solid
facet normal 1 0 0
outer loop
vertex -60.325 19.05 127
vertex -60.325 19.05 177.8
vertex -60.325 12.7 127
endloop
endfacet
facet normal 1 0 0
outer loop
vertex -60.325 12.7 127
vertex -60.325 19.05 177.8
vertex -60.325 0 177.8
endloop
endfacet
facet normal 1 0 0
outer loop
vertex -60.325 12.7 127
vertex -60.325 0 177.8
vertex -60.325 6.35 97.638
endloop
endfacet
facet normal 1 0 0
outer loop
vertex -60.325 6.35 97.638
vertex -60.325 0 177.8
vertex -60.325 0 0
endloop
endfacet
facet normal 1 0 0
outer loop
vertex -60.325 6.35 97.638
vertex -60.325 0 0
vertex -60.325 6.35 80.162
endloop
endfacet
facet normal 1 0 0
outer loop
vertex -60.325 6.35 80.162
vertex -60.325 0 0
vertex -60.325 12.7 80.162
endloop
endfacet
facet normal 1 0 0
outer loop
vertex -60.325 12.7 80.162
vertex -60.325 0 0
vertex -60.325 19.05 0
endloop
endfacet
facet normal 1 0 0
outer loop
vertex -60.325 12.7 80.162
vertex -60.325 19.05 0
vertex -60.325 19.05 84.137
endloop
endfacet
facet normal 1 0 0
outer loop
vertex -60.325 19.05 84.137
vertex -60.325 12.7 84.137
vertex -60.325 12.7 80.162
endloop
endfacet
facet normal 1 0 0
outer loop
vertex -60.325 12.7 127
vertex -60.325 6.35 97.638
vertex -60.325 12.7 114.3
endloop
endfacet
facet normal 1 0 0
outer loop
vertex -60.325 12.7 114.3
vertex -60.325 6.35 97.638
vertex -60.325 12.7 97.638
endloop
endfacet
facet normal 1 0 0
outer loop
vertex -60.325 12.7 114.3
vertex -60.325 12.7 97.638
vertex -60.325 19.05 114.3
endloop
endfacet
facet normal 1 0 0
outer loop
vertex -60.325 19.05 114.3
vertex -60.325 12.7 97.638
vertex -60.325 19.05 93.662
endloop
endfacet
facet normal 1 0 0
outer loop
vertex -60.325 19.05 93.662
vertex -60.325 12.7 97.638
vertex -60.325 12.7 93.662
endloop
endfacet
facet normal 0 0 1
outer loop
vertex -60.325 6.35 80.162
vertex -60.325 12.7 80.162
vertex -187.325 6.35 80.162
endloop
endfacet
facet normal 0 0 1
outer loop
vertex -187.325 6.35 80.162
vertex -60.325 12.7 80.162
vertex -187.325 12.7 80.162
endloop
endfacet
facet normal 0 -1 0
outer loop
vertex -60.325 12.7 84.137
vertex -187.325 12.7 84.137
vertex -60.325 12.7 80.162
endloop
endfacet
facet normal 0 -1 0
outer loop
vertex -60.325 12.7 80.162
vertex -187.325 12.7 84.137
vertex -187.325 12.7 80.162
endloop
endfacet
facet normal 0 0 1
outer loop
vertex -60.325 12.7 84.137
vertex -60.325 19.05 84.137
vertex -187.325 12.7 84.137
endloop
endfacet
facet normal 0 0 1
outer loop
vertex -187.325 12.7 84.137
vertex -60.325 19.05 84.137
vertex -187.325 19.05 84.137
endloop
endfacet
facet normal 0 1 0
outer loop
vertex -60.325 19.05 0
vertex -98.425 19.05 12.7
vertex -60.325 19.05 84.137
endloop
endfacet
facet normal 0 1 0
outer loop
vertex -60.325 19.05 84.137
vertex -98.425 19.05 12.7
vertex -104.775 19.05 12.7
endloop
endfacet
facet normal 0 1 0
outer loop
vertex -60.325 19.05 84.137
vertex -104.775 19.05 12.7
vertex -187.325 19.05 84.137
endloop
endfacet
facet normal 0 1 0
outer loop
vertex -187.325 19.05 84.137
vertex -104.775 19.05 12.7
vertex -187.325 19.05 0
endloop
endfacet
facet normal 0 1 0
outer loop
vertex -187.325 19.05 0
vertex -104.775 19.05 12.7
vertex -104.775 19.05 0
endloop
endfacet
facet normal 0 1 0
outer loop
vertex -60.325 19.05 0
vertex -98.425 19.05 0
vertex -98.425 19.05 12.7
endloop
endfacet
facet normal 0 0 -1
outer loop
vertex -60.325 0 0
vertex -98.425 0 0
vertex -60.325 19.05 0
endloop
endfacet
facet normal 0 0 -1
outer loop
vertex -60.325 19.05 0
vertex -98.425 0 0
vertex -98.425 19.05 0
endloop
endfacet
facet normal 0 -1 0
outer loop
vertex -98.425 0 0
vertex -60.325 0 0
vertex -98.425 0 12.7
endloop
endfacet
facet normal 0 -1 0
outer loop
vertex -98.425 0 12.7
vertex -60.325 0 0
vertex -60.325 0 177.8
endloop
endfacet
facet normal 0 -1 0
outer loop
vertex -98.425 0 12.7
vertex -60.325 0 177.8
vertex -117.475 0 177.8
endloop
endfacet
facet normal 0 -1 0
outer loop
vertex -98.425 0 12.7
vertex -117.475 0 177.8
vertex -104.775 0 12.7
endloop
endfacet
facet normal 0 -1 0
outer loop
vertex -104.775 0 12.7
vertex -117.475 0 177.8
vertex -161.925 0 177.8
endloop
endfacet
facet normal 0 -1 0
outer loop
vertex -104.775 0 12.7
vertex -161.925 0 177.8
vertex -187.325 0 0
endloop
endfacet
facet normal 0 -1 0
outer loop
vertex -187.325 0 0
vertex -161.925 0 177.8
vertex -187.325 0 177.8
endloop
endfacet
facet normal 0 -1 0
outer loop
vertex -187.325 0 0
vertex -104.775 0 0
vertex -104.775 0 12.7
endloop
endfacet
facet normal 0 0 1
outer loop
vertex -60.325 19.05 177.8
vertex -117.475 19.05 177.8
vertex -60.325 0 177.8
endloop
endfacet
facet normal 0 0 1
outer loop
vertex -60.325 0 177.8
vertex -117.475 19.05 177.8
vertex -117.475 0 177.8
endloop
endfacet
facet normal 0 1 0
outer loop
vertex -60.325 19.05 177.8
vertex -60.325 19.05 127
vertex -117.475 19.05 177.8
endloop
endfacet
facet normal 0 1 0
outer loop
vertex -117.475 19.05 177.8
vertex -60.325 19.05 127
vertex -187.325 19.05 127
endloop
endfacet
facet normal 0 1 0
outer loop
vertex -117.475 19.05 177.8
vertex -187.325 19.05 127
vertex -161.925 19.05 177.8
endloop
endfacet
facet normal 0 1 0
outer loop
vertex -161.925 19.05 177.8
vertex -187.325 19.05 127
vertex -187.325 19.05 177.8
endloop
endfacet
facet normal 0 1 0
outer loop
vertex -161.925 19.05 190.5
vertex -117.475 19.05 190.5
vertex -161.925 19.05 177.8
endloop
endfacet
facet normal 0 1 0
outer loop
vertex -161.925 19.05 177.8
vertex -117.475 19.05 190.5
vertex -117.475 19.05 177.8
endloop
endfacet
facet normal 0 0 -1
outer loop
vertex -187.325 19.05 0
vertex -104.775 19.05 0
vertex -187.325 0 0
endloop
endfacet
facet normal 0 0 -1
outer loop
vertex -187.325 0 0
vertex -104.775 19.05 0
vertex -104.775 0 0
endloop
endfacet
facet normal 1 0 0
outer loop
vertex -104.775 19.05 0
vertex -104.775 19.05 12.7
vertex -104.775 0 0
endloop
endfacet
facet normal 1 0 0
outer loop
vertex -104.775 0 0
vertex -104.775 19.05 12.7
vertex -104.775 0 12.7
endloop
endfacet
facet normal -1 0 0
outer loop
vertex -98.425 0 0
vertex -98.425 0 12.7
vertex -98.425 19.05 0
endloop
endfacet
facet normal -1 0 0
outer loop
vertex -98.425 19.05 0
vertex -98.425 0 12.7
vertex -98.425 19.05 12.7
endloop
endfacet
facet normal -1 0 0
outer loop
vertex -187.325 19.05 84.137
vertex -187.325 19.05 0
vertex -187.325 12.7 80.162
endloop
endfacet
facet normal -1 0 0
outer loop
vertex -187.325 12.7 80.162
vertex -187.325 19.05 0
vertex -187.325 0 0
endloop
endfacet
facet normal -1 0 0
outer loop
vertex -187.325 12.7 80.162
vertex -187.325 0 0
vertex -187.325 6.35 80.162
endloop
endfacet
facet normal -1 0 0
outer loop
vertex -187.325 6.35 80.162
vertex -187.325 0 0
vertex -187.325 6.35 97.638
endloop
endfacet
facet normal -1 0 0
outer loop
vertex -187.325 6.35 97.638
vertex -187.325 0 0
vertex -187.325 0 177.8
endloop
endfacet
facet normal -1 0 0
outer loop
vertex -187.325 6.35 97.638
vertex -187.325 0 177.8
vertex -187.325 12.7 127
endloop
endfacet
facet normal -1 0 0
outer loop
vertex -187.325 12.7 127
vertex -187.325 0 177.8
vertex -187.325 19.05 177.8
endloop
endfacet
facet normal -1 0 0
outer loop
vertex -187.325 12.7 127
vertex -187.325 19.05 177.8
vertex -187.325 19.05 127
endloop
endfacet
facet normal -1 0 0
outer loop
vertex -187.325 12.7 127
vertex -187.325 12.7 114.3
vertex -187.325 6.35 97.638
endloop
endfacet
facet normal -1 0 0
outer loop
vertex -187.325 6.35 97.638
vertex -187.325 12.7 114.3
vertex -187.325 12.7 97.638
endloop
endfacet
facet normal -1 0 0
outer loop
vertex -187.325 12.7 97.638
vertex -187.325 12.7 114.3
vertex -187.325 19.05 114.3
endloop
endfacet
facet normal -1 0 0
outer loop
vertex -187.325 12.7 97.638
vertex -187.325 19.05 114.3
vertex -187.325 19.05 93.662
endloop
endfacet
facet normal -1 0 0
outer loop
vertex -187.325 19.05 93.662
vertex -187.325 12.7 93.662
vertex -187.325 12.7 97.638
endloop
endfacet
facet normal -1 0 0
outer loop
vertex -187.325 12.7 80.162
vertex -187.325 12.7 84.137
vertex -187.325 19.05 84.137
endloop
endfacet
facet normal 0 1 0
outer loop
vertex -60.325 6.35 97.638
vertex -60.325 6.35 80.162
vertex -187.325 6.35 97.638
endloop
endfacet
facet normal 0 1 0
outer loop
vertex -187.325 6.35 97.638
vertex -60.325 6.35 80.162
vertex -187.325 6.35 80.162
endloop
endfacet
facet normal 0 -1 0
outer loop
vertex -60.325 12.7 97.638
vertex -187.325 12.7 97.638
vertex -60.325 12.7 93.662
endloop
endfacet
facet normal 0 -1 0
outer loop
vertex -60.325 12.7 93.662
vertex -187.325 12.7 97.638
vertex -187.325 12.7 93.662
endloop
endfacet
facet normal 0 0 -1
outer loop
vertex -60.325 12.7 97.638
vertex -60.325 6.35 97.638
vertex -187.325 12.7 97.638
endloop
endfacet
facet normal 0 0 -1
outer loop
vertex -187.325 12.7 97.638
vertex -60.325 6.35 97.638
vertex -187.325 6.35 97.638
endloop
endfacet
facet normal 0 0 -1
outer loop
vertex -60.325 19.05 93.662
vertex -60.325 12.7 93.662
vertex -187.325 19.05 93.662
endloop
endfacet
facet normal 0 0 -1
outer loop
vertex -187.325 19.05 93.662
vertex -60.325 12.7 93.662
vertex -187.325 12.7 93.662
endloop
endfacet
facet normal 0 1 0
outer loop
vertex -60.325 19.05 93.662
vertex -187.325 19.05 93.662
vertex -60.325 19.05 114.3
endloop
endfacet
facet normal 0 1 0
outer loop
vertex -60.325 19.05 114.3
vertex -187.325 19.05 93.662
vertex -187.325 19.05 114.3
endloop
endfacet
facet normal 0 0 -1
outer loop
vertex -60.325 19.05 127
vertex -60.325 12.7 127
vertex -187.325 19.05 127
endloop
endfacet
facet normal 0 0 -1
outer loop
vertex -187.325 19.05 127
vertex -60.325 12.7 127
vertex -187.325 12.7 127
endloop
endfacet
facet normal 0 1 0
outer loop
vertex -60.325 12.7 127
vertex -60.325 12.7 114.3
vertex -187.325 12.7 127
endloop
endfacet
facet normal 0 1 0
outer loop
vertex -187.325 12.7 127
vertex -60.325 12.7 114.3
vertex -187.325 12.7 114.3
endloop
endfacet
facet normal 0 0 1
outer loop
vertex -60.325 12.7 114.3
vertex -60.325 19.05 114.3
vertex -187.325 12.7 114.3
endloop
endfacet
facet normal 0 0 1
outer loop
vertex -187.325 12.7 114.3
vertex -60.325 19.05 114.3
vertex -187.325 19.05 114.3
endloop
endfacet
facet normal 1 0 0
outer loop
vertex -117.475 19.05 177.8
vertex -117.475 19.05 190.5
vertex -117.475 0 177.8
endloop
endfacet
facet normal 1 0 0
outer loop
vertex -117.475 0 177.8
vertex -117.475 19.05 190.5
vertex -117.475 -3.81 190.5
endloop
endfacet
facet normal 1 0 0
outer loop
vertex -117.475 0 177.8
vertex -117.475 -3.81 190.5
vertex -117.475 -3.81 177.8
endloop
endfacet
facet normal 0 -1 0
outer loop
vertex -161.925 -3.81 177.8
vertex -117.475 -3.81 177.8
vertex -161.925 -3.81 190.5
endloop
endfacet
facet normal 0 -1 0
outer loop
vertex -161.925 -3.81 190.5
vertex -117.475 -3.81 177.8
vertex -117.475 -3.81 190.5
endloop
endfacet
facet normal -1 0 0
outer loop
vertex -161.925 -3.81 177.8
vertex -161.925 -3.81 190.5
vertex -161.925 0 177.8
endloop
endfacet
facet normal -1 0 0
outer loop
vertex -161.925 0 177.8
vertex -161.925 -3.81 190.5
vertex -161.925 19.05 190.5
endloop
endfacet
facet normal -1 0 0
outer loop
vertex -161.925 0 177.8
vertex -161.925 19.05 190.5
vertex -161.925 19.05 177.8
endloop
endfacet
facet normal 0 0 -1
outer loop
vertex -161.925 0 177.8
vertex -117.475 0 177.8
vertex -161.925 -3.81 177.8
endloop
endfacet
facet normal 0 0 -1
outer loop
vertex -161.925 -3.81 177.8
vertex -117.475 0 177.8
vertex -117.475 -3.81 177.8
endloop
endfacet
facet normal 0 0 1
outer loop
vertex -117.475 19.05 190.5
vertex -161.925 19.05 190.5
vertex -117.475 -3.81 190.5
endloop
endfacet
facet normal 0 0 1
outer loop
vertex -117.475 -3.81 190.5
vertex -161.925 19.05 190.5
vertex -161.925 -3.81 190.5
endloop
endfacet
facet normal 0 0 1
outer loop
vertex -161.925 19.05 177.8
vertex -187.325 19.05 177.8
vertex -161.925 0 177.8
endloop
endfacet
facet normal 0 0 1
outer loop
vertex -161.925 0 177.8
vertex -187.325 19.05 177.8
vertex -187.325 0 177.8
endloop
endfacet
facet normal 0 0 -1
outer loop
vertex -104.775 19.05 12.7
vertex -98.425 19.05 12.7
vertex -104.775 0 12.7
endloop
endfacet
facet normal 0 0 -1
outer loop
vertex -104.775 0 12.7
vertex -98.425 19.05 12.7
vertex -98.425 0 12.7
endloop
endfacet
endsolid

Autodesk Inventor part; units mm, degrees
ref_plane "YZ Plane" through (0, 0, 0) normal (1, 0, 0) x (0, 1, 0)
ref_plane "XZ Plane" through (0, 0, 0) normal (0, 1, 0) x (-1, 0, 0)
sketch "Sketch3" plane through (0, 0, 0) normal (0, 0, 1) x (1, 0, 0)
  line L0 (0, -9.525) -> (9.525, -9.525)
  line L1 (9.525, -9.525) -> (9.525, 0)
  line L2 (0, 0) -> (0, -9.525) construction
  line L3 (0, 0) -> (9.525, 0) construction
  line L4 (0, -9.525) -> (-9.525, -9.525)
  line L5 (-9.525, -9.525) -> (-9.525, 0)
  line L6 (9.525, 0) -> (73.025, 0)
  line L7 (-187.325, 0) -> (-187.325, 19.05)
  line L8 (-187.325, 0) -> (-9.525, 0)
  line L9 (73.025, 0) -> (73.025, 19.05)
  line L10 (73.025, 19.05) -> (-187.325, 19.05)
  dimension "d0" = 9.525
  dimension "d1" = 9.525
  dimension "d6" = 63.5
  dimension "d8" = 19.05
  dimension "d9" = 177.8
extrude "Extrusion1" add sketch "Sketch3" along normal mid plane 355.6
sketch "Sketch4" plane through (0, 0, 177.8) normal (0, 0, 1) x (1, 0, 0)
  line L0 (-187.325, 19.05) -> (73.025, 19.05) construction
  line L1 (0, 19.05) -> (0, -9.525) construction
  line L2 (9.525, -9.525) -> (-9.525, -9.525) construction
  line L3 (0, -9.525) -> (-22.225, -9.525)
  line L4 (-22.225, -9.525) -> (-22.225, 19.05)
  line L5 (-22.225, 19.05) -> (0, 19.05)
  line L6 (187.325, 19.05) -> (-73.025, 19.05) construction
  line L7 (0, -9.525) -> (22.225, -9.525)
  line L8 (22.225, -9.525) -> (22.225, 19.05)
  line L9 (0, 19.05) -> (22.225, 19.05)
  point P0 (0, 0)
  dimension "d12" = 22.225
extrude "Extrusion2" add sketch "Sketch4" along normal blind 12.7
mirror "Mirror1" about plane through (0, 0, 0) normal (0, 0, 1) of "Extrusion2"
sketch "Sketch6" plane through (-187.325, 0, -177.8) normal (0, -1, 0) x (1, 0, 0)
  line L0 (82.55, 165.1) -> (88.9, 165.1)
  line L1 (88.9, 165.1) -> (88.9, 190.5)
  line L2 (88.9, 190.5) -> (82.55, 190.5)
  line L3 (82.55, 190.5) -> (82.55, 165.1)
  line L4 (82.55, 165.1) -> (88.9, 190.5) construction
  line L5 (88.9, 165.1) -> (82.55, 190.5) construction
  line L6 (177.8, 0) -> (177.8, 355.6) projected
  point P0 (187.325, 177.8)
  point P1 (85.725, 177.8)
  dimension "d16" = 12.7
  dimension "d18" = 6.35
  dimension "d19" = 88.9
extrude "Extrusion3" cut sketch "Sketch6" against normal through all
sketch "Sketch7" plane through (0, 0, 177.8) normal (0, 0, 1) x (1, 0, 0)
  line L0 (-187.325, 19.05) -> (-22.225, 19.05) projected
  line L1 (-161.925, 19.05) -> (-117.475, 19.05)
  line L2 (-117.475, 19.05) -> (-117.475, -3.81)
  line L3 (-117.475, -3.81) -> (-161.925, -3.81)
  line L4 (-161.925, -3.81) -> (-161.925, 19.05)
  line L5 (-187.325, 19.05) -> (-187.325, 0) projected
  point P0 (0, 0)
  dimension "d22" = 44.45
  dimension "d23" = 22.86
  dimension "d24" = 25.4
extrude "Extrusion4" add sketch "Sketch7" along normal blind 12.7
mirror "Mirror2" about plane through (0, 0, 0) normal (0, 0, 1) of "Extrusion4"
sketch "Sketch9" plane through (73.025, 0, 177.8) normal (1, 0, 0) x (0, 0, -1)
  line L0 (355.6, 19.05) -> (0, 19.05) projected
  line L1 (50.8, 19.05) -> (63.5, 19.05)
  line L2 (63.5, 19.05) -> (63.5, 12.7)
  line L3 (63.5, 12.7) -> (50.8, 12.7)
  line L4 (50.8, 12.7) -> (50.8, 19.05)
  line L5 (0, 0) -> (0, 19.05) projected
  point P0 (177.8, 0)
  dimension "d28" = 12.7
  dimension "d29" = 6.35
  dimension "d30" = 50.8
extrude "Extrusion5" cut sketch "Sketch9" against normal through all
mirror "Mirror3" about plane through (0, 0, 0) normal (0, 0, 1) of "Extrusion5"
sketch "Sketch12" plane through (73.025, 0, 177.8) normal (1, 0, 0) x (0, 0, -1)
  line L0 (355.6, 0) -> (0, 0) construction
  line L1 (88.9, 0) -> (88.9, 16.5009) construction
  line L2 (0, 0) -> (0, 19.05) projected
  line L3 (50.8, 19.05) -> (0, 19.05) projected
  line L4 (84.1375, 19.05) -> (84.1375, 12.7)
  line L5 (84.1375, 12.7) -> (80.1624, 12.7)
  line L6 (80.1624, 12.7) -> (80.1624, 6.35)
  line L7 (80.1624, 6.35) -> (88.9, 6.35)
  line L8 (93.6625, 19.05) -> (93.6625, 12.7)
  line L9 (93.6625, 12.7) -> (97.6376, 12.7)
  line L10 (97.6376, 12.7) -> (97.6376, 6.35)
  line L11 (97.6376, 6.35) -> (88.9, 6.35)
  line L12 (84.1375, 19.05) -> (93.6625, 19.05)
  point P0 (177.8, 0)
  dimension "d46" = 88.9
  dimension "d47" = 4.7625
  dimension "d48" = 6.35
  dimension "d49" = 6.35
  dimension "d50" = 8.7376
extrude "Extrusion8" cut sketch "Sketch12" against normal through all
mirror "Mirror4" about plane through (0, 0, 0) normal (0, 0, 1) of "Extrusion8"
split "Split2" plane through (0, 0, 0) removes the side toward (0, 0, -1)
ref_plane "Work Plane1" through (-60.325, 0, 177.8) normal (1, 0, 0) x (0, 0, -1)
split "Split3" plane through (-60.325, 0, 177.8) removes the side toward (1, 0, 0)
properties part number "BandSawJigBottomSpiltA-SplitB" material "LCP Plastic"
